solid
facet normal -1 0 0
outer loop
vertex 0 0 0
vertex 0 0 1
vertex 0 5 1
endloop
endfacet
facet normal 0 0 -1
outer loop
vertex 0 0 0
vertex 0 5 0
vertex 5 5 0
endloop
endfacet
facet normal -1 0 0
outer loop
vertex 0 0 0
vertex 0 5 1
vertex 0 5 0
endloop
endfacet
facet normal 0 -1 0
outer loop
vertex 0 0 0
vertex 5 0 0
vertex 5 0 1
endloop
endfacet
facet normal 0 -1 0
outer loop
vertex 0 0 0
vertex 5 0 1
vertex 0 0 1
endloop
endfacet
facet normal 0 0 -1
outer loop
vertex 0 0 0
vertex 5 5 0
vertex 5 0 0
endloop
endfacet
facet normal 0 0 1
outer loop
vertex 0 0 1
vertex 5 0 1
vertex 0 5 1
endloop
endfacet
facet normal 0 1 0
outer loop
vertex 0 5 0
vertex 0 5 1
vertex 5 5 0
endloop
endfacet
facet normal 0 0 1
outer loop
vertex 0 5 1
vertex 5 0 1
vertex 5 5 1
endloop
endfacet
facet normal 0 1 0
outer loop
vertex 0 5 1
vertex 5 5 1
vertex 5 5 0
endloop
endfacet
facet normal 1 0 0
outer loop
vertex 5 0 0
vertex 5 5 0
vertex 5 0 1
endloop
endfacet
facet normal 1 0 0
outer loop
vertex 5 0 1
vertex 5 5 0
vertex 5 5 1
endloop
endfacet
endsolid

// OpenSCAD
/* Warning, this is a very basic generator with a lot of approximation 
input data : [VQFN, LMX, 5x5x1.0mm, 32, , B, C04-00500B]
generated by com.zoubworld.electronics.cad.model3d.Basic
Date : Sun Feb 15 10:50:48 CET 2026
*/

//body
color("black")
translate([0,0,0])
cube([5.0,5.0,1.0], center=false);
